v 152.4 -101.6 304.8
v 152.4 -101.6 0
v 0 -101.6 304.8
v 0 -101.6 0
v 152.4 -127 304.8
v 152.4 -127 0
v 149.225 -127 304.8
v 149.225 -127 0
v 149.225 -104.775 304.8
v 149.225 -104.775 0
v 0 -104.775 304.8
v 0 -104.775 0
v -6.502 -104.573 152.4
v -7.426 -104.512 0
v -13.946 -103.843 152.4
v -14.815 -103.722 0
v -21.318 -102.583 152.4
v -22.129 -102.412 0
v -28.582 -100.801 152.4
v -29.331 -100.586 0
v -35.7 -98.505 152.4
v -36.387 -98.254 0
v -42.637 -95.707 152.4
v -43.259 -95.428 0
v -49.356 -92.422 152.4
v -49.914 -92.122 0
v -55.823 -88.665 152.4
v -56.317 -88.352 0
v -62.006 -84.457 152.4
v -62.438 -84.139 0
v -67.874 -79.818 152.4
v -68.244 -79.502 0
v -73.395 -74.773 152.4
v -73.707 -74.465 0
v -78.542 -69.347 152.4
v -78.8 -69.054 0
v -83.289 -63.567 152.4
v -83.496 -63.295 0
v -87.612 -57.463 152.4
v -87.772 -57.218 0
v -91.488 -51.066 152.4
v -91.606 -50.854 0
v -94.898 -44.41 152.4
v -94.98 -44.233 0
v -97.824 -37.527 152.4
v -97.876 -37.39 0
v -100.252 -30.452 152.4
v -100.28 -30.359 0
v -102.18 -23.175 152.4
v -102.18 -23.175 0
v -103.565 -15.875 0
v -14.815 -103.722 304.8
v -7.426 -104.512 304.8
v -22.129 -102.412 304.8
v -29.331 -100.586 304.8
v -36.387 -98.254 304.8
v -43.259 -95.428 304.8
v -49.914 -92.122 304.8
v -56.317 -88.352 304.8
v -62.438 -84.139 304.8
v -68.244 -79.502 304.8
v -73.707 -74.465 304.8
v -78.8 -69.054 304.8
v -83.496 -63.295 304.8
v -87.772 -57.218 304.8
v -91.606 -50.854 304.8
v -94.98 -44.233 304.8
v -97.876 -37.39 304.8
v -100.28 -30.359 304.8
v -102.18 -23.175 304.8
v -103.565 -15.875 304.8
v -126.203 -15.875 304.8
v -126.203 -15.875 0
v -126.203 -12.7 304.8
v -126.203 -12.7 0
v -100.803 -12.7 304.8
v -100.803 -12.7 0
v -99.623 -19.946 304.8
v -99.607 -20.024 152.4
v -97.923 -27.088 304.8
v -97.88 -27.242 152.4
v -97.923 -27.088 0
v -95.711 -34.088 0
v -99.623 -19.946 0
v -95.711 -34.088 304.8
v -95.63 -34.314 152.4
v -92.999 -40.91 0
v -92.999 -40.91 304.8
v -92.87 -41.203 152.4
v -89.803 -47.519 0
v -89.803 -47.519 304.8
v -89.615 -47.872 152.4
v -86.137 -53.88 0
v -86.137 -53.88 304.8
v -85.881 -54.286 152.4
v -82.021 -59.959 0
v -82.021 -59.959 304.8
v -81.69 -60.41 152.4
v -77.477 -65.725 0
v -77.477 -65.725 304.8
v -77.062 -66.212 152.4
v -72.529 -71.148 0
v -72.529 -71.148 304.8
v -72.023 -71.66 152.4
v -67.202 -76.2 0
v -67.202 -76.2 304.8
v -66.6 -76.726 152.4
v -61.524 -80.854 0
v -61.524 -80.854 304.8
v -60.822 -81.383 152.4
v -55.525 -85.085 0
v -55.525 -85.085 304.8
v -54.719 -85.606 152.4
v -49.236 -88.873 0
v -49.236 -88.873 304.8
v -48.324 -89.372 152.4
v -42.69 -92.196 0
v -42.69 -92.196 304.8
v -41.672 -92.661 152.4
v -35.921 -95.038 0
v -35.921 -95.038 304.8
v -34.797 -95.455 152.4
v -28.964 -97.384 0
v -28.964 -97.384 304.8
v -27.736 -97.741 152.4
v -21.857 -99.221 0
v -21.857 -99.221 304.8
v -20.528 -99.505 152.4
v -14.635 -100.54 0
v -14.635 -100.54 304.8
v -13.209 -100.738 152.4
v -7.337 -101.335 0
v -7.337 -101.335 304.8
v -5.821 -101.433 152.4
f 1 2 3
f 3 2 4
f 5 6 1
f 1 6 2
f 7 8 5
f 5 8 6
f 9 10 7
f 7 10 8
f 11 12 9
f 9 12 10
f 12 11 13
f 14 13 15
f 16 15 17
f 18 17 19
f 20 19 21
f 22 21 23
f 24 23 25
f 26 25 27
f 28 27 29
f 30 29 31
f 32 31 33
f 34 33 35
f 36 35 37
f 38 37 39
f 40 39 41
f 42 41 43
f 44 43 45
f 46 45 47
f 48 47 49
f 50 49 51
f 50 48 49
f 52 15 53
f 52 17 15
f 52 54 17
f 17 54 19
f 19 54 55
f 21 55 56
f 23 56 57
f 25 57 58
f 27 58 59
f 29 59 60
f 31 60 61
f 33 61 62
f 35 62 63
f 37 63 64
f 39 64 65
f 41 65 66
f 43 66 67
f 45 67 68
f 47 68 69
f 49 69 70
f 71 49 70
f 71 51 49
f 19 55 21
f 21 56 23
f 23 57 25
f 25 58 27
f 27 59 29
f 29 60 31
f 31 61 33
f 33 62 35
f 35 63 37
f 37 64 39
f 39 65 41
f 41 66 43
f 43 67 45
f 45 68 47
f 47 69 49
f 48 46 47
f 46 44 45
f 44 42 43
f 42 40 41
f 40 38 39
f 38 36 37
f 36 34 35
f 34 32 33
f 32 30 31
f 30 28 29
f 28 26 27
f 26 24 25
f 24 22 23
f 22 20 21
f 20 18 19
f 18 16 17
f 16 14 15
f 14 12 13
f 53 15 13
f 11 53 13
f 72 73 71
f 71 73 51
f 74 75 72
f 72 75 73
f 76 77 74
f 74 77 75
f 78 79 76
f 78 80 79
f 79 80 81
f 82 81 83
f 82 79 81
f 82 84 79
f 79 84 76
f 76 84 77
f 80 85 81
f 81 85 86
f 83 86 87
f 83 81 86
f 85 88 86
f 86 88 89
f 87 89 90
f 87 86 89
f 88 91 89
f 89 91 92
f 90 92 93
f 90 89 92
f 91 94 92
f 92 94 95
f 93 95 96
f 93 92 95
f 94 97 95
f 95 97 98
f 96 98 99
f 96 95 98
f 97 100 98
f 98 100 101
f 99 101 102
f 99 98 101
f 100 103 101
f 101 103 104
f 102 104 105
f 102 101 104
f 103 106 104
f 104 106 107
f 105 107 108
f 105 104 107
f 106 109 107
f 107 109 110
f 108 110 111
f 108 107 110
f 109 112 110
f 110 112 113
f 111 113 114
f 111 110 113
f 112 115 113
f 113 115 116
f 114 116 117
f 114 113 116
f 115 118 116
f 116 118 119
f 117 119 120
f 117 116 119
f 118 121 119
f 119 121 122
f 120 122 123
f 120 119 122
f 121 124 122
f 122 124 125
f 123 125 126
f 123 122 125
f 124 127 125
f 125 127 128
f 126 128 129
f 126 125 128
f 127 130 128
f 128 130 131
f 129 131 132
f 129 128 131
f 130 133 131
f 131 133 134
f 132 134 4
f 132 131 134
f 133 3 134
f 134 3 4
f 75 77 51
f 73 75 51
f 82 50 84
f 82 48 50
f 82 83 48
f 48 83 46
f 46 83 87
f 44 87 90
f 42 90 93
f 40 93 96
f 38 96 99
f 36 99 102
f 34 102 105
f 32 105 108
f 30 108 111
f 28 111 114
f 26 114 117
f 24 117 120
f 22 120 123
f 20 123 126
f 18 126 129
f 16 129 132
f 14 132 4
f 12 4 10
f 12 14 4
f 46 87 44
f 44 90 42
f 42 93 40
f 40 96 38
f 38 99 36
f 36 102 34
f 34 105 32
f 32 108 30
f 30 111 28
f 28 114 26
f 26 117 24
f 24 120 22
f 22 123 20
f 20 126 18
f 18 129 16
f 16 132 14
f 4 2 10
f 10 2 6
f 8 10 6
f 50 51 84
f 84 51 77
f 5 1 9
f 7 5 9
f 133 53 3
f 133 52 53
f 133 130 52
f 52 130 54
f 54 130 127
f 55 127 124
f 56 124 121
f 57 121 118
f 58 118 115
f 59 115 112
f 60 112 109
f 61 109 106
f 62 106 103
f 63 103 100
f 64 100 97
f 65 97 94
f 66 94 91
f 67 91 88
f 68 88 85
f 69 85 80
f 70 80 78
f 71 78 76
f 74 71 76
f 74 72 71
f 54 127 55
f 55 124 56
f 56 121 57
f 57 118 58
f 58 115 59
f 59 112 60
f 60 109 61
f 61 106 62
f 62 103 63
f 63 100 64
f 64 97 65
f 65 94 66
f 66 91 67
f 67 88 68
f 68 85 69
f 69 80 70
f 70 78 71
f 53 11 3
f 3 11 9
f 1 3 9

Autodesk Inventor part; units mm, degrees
ref_plane "YZ Plane" through (0, 0, 0) normal (1, 0, 0) x (0, 1, 0)
ref_plane "XZ Plane" through (0, 0, 0) normal (0, 1, 0) x (-1, 0, 0)
ref_plane "XY Plane" through (0, 0, 0) normal (0, 0, 1) x (1, 0, 0)
sketch "Sketch1" plane through (0, 0, 0) normal (0, 0, 1) x (1, 0, 0)
  arc A0 (-100.8031, -12.7) -> (0, -101.6) centre (0, 0) ccw
  line L0 (0, -101.6) -> (152.4, -101.6)
  line L1 (152.4, -101.6) -> (152.4, -127)
  line L2 (149.225, -104.775) -> (0, -104.775)
  arc A1 (-103.5654, -15.875) -> (0, -104.775) centre (0, 0) ccw
  line L3 (-100.8031, -12.7) -> (-126.2031, -12.7)
  line L4 (-126.2031, -12.7) -> (-126.2031, -15.875)
  line L5 (-126.2031, -15.875) -> (-103.5654, -15.875)
  line L6 (-126.2031, -12.7) -> (-100.8031, -12.7)
  line L7 (-100.8031, -12.7) -> (-100.8031, 0)
  line L8 (-100.8031, 0) -> (-126.2031, 0)
  line L9 (-126.2031, 0) -> (-126.2031, -12.7)
  line L10 (-100.8031, 0) -> (0, 0) construction
  line L11 (149.225, -104.775) -> (149.225, -127)
  line L12 (149.225, -127) -> (152.4, -127)
  dimension "d0" = 25.4
  dimension "d2" = 3.175
  dimension "d3" = 3.175
  dimension "d4" = 12.7
  dimension "d5" = 101.6
  dimension "d6" = 152.4
  dimension "d7" = 3.175
  dimension "d8" = 25.4
extrude "Extrusion1" add sketch "Sketch1" along normal blind 304.8 contours A0 L0 L1 L12 L11 L2 A1 L5 L4 L3
properties part number "Panel_FrontVerticalConveyorShroud_Upper" material "Polycarbonate, Smoke"
